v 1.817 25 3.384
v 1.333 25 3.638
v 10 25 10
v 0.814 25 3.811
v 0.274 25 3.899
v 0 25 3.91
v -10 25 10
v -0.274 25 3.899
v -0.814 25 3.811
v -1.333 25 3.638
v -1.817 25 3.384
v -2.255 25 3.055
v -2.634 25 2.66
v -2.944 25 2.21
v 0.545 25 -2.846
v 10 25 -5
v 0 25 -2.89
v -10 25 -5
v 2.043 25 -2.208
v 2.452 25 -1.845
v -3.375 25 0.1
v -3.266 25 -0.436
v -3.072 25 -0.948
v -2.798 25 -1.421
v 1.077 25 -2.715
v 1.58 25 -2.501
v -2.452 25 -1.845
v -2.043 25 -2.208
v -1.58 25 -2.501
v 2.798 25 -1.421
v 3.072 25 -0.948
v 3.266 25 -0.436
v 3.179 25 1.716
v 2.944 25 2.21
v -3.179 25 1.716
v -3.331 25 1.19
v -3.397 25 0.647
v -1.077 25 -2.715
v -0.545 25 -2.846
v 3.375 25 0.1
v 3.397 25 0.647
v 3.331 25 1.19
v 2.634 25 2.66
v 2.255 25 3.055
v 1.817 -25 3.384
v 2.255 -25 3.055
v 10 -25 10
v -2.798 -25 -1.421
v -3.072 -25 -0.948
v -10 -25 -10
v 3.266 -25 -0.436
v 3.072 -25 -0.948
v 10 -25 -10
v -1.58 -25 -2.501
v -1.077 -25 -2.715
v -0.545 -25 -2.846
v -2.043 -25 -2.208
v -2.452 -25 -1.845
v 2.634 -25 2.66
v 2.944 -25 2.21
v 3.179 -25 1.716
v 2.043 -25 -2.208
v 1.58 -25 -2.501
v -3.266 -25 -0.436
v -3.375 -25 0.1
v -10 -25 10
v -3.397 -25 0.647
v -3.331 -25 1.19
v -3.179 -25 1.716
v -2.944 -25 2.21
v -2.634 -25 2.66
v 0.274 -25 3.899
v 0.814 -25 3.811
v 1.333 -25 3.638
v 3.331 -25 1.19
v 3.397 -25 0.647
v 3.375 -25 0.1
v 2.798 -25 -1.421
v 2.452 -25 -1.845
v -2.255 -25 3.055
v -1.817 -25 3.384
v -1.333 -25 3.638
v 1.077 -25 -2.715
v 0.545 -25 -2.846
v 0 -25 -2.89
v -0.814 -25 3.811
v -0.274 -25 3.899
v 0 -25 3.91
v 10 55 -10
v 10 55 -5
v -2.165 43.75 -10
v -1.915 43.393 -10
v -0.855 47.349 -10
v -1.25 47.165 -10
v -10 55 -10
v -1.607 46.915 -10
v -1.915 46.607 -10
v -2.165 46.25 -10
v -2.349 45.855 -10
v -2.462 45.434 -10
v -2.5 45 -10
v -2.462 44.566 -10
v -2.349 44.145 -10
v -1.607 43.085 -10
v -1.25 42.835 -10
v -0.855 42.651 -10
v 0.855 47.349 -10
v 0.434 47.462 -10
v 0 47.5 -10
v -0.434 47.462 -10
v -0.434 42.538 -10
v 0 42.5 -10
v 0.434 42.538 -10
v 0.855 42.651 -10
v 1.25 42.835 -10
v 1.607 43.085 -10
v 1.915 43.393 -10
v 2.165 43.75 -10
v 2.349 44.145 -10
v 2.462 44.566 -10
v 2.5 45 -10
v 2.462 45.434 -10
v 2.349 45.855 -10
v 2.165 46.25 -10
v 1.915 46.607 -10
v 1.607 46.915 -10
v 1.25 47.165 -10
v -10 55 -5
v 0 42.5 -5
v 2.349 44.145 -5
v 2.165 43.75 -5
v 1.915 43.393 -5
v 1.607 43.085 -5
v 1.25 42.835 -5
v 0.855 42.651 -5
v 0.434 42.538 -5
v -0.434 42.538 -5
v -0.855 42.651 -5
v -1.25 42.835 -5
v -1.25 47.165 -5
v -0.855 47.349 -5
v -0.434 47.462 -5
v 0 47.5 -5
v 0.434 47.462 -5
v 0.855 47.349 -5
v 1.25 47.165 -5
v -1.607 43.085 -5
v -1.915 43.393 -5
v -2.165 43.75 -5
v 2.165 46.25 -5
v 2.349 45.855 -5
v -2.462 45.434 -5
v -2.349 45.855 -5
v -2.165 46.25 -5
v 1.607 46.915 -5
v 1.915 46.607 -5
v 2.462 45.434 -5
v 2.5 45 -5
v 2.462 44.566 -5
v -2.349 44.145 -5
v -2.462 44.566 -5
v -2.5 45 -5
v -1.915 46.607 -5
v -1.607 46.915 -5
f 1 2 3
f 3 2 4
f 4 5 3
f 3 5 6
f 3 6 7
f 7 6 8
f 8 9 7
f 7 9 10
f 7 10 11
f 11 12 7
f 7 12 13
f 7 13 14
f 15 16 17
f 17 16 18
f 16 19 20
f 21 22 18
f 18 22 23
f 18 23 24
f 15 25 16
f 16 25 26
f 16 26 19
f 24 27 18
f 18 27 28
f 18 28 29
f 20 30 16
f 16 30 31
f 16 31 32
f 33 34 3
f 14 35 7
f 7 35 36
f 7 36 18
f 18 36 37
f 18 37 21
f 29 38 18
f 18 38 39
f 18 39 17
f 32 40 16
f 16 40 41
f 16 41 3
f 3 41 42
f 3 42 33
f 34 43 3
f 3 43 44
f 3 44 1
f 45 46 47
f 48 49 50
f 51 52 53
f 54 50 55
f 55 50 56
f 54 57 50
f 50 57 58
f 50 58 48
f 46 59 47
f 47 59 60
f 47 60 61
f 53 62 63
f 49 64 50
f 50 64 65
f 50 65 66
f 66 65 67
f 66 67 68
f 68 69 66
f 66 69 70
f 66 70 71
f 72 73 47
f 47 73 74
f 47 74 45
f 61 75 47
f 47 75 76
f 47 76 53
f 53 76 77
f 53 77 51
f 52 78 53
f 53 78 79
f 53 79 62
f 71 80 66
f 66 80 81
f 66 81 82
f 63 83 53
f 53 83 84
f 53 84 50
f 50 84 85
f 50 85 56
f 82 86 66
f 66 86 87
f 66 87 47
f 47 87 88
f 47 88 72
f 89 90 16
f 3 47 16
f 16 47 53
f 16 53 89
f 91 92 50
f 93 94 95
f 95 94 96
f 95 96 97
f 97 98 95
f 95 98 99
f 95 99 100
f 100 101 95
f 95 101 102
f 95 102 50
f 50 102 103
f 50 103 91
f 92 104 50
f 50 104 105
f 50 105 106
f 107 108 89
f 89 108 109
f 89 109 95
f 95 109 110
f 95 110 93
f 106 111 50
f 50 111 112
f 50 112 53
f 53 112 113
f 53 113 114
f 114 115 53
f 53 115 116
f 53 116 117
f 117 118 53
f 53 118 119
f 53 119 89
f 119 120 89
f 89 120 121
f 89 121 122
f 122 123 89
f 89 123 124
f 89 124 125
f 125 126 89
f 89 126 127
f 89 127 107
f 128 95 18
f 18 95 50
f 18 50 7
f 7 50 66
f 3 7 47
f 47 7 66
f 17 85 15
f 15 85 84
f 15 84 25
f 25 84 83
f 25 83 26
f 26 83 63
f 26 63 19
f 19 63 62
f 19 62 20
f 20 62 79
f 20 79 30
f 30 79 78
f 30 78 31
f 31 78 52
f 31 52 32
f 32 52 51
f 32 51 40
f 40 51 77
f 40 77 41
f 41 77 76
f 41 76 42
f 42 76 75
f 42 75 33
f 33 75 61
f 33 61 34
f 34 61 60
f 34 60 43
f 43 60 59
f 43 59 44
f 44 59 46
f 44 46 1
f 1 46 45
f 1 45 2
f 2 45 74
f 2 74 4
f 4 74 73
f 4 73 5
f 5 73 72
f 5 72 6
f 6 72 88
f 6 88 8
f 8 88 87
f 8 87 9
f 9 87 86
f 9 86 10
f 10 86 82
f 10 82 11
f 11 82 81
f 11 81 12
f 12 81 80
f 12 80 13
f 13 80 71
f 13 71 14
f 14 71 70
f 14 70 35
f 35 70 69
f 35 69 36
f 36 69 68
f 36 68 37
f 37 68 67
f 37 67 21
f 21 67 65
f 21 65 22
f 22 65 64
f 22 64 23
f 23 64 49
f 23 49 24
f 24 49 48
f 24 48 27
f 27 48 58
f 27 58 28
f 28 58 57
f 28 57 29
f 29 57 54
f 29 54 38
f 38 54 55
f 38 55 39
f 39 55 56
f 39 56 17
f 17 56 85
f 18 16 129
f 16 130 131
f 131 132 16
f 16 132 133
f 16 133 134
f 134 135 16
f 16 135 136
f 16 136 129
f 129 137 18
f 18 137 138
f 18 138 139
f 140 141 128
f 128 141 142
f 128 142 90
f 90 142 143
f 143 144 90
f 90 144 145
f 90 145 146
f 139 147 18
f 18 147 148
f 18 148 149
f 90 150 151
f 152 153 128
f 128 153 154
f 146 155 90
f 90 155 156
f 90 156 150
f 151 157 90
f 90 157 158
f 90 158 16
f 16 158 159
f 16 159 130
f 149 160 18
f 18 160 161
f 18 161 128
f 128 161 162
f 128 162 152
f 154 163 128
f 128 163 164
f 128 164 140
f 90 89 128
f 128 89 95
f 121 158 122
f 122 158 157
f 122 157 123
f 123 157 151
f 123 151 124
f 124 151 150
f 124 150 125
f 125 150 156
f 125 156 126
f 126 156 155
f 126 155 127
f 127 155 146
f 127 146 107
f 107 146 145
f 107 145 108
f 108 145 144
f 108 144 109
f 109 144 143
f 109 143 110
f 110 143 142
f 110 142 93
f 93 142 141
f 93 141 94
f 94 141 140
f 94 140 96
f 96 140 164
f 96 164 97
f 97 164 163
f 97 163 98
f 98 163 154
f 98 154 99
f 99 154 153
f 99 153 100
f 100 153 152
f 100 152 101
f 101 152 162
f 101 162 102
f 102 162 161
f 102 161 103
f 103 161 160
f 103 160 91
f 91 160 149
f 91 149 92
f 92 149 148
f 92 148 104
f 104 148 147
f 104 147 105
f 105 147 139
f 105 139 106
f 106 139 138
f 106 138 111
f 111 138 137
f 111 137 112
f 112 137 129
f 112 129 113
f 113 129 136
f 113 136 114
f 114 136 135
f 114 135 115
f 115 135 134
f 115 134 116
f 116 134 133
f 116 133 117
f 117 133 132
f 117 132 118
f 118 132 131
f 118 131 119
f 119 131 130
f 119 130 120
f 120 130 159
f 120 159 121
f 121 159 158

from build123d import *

# Parameters (mm, degrees)
SKETCH1_W           = 20
SKETCH1_H           = 20
SKETCH1_R           = 3.4
BOSS_EXTRUDE1_DEPTH = 25
SKETCH2_W           = 20
SKETCH2_H           = 5
BOSS_EXTRUDE2_DEPTH = 30
SKETCH3_R           = 2.5
CUT_EXTRUDE1_DEPTH  = 58.879184514


with BuildPart() as part:
    # Sketch1 → Boss-Extrude1 (new, symmetric)
    with BuildSketch(Plane(origin=(0, 0, 0), x_dir=(1, 0, 0), z_dir=(0, 1, 0))):
        Rectangle(SKETCH1_W, SKETCH1_H)
        with Locations(Location((0, -0.51, 0), (0, 0, 270))):
            Circle(SKETCH1_R, mode=Mode.SUBTRACT)
    extrude(amount=BOSS_EXTRUDE1_DEPTH, both=True)

    # Sketch2 → Boss-Extrude2 (add)
    with BuildSketch(Plane(origin=(0, 25, 0), x_dir=(1, 0, 0), z_dir=(0, 1, 0))):
        with Locations((0, 7.5)):
            Rectangle(SKETCH2_W, SKETCH2_H)
    extrude(amount=BOSS_EXTRUDE2_DEPTH)

    # Sketch3 → Cut-Extrude1 (cut, through all)
    with BuildSketch(Plane.XY.offset(-5)):
        with Locations((0, 45)):
            Circle(SKETCH3_R)
    extrude(amount=-CUT_EXTRUDE1_DEPTH, mode=Mode.SUBTRACT)


solid = part.part
